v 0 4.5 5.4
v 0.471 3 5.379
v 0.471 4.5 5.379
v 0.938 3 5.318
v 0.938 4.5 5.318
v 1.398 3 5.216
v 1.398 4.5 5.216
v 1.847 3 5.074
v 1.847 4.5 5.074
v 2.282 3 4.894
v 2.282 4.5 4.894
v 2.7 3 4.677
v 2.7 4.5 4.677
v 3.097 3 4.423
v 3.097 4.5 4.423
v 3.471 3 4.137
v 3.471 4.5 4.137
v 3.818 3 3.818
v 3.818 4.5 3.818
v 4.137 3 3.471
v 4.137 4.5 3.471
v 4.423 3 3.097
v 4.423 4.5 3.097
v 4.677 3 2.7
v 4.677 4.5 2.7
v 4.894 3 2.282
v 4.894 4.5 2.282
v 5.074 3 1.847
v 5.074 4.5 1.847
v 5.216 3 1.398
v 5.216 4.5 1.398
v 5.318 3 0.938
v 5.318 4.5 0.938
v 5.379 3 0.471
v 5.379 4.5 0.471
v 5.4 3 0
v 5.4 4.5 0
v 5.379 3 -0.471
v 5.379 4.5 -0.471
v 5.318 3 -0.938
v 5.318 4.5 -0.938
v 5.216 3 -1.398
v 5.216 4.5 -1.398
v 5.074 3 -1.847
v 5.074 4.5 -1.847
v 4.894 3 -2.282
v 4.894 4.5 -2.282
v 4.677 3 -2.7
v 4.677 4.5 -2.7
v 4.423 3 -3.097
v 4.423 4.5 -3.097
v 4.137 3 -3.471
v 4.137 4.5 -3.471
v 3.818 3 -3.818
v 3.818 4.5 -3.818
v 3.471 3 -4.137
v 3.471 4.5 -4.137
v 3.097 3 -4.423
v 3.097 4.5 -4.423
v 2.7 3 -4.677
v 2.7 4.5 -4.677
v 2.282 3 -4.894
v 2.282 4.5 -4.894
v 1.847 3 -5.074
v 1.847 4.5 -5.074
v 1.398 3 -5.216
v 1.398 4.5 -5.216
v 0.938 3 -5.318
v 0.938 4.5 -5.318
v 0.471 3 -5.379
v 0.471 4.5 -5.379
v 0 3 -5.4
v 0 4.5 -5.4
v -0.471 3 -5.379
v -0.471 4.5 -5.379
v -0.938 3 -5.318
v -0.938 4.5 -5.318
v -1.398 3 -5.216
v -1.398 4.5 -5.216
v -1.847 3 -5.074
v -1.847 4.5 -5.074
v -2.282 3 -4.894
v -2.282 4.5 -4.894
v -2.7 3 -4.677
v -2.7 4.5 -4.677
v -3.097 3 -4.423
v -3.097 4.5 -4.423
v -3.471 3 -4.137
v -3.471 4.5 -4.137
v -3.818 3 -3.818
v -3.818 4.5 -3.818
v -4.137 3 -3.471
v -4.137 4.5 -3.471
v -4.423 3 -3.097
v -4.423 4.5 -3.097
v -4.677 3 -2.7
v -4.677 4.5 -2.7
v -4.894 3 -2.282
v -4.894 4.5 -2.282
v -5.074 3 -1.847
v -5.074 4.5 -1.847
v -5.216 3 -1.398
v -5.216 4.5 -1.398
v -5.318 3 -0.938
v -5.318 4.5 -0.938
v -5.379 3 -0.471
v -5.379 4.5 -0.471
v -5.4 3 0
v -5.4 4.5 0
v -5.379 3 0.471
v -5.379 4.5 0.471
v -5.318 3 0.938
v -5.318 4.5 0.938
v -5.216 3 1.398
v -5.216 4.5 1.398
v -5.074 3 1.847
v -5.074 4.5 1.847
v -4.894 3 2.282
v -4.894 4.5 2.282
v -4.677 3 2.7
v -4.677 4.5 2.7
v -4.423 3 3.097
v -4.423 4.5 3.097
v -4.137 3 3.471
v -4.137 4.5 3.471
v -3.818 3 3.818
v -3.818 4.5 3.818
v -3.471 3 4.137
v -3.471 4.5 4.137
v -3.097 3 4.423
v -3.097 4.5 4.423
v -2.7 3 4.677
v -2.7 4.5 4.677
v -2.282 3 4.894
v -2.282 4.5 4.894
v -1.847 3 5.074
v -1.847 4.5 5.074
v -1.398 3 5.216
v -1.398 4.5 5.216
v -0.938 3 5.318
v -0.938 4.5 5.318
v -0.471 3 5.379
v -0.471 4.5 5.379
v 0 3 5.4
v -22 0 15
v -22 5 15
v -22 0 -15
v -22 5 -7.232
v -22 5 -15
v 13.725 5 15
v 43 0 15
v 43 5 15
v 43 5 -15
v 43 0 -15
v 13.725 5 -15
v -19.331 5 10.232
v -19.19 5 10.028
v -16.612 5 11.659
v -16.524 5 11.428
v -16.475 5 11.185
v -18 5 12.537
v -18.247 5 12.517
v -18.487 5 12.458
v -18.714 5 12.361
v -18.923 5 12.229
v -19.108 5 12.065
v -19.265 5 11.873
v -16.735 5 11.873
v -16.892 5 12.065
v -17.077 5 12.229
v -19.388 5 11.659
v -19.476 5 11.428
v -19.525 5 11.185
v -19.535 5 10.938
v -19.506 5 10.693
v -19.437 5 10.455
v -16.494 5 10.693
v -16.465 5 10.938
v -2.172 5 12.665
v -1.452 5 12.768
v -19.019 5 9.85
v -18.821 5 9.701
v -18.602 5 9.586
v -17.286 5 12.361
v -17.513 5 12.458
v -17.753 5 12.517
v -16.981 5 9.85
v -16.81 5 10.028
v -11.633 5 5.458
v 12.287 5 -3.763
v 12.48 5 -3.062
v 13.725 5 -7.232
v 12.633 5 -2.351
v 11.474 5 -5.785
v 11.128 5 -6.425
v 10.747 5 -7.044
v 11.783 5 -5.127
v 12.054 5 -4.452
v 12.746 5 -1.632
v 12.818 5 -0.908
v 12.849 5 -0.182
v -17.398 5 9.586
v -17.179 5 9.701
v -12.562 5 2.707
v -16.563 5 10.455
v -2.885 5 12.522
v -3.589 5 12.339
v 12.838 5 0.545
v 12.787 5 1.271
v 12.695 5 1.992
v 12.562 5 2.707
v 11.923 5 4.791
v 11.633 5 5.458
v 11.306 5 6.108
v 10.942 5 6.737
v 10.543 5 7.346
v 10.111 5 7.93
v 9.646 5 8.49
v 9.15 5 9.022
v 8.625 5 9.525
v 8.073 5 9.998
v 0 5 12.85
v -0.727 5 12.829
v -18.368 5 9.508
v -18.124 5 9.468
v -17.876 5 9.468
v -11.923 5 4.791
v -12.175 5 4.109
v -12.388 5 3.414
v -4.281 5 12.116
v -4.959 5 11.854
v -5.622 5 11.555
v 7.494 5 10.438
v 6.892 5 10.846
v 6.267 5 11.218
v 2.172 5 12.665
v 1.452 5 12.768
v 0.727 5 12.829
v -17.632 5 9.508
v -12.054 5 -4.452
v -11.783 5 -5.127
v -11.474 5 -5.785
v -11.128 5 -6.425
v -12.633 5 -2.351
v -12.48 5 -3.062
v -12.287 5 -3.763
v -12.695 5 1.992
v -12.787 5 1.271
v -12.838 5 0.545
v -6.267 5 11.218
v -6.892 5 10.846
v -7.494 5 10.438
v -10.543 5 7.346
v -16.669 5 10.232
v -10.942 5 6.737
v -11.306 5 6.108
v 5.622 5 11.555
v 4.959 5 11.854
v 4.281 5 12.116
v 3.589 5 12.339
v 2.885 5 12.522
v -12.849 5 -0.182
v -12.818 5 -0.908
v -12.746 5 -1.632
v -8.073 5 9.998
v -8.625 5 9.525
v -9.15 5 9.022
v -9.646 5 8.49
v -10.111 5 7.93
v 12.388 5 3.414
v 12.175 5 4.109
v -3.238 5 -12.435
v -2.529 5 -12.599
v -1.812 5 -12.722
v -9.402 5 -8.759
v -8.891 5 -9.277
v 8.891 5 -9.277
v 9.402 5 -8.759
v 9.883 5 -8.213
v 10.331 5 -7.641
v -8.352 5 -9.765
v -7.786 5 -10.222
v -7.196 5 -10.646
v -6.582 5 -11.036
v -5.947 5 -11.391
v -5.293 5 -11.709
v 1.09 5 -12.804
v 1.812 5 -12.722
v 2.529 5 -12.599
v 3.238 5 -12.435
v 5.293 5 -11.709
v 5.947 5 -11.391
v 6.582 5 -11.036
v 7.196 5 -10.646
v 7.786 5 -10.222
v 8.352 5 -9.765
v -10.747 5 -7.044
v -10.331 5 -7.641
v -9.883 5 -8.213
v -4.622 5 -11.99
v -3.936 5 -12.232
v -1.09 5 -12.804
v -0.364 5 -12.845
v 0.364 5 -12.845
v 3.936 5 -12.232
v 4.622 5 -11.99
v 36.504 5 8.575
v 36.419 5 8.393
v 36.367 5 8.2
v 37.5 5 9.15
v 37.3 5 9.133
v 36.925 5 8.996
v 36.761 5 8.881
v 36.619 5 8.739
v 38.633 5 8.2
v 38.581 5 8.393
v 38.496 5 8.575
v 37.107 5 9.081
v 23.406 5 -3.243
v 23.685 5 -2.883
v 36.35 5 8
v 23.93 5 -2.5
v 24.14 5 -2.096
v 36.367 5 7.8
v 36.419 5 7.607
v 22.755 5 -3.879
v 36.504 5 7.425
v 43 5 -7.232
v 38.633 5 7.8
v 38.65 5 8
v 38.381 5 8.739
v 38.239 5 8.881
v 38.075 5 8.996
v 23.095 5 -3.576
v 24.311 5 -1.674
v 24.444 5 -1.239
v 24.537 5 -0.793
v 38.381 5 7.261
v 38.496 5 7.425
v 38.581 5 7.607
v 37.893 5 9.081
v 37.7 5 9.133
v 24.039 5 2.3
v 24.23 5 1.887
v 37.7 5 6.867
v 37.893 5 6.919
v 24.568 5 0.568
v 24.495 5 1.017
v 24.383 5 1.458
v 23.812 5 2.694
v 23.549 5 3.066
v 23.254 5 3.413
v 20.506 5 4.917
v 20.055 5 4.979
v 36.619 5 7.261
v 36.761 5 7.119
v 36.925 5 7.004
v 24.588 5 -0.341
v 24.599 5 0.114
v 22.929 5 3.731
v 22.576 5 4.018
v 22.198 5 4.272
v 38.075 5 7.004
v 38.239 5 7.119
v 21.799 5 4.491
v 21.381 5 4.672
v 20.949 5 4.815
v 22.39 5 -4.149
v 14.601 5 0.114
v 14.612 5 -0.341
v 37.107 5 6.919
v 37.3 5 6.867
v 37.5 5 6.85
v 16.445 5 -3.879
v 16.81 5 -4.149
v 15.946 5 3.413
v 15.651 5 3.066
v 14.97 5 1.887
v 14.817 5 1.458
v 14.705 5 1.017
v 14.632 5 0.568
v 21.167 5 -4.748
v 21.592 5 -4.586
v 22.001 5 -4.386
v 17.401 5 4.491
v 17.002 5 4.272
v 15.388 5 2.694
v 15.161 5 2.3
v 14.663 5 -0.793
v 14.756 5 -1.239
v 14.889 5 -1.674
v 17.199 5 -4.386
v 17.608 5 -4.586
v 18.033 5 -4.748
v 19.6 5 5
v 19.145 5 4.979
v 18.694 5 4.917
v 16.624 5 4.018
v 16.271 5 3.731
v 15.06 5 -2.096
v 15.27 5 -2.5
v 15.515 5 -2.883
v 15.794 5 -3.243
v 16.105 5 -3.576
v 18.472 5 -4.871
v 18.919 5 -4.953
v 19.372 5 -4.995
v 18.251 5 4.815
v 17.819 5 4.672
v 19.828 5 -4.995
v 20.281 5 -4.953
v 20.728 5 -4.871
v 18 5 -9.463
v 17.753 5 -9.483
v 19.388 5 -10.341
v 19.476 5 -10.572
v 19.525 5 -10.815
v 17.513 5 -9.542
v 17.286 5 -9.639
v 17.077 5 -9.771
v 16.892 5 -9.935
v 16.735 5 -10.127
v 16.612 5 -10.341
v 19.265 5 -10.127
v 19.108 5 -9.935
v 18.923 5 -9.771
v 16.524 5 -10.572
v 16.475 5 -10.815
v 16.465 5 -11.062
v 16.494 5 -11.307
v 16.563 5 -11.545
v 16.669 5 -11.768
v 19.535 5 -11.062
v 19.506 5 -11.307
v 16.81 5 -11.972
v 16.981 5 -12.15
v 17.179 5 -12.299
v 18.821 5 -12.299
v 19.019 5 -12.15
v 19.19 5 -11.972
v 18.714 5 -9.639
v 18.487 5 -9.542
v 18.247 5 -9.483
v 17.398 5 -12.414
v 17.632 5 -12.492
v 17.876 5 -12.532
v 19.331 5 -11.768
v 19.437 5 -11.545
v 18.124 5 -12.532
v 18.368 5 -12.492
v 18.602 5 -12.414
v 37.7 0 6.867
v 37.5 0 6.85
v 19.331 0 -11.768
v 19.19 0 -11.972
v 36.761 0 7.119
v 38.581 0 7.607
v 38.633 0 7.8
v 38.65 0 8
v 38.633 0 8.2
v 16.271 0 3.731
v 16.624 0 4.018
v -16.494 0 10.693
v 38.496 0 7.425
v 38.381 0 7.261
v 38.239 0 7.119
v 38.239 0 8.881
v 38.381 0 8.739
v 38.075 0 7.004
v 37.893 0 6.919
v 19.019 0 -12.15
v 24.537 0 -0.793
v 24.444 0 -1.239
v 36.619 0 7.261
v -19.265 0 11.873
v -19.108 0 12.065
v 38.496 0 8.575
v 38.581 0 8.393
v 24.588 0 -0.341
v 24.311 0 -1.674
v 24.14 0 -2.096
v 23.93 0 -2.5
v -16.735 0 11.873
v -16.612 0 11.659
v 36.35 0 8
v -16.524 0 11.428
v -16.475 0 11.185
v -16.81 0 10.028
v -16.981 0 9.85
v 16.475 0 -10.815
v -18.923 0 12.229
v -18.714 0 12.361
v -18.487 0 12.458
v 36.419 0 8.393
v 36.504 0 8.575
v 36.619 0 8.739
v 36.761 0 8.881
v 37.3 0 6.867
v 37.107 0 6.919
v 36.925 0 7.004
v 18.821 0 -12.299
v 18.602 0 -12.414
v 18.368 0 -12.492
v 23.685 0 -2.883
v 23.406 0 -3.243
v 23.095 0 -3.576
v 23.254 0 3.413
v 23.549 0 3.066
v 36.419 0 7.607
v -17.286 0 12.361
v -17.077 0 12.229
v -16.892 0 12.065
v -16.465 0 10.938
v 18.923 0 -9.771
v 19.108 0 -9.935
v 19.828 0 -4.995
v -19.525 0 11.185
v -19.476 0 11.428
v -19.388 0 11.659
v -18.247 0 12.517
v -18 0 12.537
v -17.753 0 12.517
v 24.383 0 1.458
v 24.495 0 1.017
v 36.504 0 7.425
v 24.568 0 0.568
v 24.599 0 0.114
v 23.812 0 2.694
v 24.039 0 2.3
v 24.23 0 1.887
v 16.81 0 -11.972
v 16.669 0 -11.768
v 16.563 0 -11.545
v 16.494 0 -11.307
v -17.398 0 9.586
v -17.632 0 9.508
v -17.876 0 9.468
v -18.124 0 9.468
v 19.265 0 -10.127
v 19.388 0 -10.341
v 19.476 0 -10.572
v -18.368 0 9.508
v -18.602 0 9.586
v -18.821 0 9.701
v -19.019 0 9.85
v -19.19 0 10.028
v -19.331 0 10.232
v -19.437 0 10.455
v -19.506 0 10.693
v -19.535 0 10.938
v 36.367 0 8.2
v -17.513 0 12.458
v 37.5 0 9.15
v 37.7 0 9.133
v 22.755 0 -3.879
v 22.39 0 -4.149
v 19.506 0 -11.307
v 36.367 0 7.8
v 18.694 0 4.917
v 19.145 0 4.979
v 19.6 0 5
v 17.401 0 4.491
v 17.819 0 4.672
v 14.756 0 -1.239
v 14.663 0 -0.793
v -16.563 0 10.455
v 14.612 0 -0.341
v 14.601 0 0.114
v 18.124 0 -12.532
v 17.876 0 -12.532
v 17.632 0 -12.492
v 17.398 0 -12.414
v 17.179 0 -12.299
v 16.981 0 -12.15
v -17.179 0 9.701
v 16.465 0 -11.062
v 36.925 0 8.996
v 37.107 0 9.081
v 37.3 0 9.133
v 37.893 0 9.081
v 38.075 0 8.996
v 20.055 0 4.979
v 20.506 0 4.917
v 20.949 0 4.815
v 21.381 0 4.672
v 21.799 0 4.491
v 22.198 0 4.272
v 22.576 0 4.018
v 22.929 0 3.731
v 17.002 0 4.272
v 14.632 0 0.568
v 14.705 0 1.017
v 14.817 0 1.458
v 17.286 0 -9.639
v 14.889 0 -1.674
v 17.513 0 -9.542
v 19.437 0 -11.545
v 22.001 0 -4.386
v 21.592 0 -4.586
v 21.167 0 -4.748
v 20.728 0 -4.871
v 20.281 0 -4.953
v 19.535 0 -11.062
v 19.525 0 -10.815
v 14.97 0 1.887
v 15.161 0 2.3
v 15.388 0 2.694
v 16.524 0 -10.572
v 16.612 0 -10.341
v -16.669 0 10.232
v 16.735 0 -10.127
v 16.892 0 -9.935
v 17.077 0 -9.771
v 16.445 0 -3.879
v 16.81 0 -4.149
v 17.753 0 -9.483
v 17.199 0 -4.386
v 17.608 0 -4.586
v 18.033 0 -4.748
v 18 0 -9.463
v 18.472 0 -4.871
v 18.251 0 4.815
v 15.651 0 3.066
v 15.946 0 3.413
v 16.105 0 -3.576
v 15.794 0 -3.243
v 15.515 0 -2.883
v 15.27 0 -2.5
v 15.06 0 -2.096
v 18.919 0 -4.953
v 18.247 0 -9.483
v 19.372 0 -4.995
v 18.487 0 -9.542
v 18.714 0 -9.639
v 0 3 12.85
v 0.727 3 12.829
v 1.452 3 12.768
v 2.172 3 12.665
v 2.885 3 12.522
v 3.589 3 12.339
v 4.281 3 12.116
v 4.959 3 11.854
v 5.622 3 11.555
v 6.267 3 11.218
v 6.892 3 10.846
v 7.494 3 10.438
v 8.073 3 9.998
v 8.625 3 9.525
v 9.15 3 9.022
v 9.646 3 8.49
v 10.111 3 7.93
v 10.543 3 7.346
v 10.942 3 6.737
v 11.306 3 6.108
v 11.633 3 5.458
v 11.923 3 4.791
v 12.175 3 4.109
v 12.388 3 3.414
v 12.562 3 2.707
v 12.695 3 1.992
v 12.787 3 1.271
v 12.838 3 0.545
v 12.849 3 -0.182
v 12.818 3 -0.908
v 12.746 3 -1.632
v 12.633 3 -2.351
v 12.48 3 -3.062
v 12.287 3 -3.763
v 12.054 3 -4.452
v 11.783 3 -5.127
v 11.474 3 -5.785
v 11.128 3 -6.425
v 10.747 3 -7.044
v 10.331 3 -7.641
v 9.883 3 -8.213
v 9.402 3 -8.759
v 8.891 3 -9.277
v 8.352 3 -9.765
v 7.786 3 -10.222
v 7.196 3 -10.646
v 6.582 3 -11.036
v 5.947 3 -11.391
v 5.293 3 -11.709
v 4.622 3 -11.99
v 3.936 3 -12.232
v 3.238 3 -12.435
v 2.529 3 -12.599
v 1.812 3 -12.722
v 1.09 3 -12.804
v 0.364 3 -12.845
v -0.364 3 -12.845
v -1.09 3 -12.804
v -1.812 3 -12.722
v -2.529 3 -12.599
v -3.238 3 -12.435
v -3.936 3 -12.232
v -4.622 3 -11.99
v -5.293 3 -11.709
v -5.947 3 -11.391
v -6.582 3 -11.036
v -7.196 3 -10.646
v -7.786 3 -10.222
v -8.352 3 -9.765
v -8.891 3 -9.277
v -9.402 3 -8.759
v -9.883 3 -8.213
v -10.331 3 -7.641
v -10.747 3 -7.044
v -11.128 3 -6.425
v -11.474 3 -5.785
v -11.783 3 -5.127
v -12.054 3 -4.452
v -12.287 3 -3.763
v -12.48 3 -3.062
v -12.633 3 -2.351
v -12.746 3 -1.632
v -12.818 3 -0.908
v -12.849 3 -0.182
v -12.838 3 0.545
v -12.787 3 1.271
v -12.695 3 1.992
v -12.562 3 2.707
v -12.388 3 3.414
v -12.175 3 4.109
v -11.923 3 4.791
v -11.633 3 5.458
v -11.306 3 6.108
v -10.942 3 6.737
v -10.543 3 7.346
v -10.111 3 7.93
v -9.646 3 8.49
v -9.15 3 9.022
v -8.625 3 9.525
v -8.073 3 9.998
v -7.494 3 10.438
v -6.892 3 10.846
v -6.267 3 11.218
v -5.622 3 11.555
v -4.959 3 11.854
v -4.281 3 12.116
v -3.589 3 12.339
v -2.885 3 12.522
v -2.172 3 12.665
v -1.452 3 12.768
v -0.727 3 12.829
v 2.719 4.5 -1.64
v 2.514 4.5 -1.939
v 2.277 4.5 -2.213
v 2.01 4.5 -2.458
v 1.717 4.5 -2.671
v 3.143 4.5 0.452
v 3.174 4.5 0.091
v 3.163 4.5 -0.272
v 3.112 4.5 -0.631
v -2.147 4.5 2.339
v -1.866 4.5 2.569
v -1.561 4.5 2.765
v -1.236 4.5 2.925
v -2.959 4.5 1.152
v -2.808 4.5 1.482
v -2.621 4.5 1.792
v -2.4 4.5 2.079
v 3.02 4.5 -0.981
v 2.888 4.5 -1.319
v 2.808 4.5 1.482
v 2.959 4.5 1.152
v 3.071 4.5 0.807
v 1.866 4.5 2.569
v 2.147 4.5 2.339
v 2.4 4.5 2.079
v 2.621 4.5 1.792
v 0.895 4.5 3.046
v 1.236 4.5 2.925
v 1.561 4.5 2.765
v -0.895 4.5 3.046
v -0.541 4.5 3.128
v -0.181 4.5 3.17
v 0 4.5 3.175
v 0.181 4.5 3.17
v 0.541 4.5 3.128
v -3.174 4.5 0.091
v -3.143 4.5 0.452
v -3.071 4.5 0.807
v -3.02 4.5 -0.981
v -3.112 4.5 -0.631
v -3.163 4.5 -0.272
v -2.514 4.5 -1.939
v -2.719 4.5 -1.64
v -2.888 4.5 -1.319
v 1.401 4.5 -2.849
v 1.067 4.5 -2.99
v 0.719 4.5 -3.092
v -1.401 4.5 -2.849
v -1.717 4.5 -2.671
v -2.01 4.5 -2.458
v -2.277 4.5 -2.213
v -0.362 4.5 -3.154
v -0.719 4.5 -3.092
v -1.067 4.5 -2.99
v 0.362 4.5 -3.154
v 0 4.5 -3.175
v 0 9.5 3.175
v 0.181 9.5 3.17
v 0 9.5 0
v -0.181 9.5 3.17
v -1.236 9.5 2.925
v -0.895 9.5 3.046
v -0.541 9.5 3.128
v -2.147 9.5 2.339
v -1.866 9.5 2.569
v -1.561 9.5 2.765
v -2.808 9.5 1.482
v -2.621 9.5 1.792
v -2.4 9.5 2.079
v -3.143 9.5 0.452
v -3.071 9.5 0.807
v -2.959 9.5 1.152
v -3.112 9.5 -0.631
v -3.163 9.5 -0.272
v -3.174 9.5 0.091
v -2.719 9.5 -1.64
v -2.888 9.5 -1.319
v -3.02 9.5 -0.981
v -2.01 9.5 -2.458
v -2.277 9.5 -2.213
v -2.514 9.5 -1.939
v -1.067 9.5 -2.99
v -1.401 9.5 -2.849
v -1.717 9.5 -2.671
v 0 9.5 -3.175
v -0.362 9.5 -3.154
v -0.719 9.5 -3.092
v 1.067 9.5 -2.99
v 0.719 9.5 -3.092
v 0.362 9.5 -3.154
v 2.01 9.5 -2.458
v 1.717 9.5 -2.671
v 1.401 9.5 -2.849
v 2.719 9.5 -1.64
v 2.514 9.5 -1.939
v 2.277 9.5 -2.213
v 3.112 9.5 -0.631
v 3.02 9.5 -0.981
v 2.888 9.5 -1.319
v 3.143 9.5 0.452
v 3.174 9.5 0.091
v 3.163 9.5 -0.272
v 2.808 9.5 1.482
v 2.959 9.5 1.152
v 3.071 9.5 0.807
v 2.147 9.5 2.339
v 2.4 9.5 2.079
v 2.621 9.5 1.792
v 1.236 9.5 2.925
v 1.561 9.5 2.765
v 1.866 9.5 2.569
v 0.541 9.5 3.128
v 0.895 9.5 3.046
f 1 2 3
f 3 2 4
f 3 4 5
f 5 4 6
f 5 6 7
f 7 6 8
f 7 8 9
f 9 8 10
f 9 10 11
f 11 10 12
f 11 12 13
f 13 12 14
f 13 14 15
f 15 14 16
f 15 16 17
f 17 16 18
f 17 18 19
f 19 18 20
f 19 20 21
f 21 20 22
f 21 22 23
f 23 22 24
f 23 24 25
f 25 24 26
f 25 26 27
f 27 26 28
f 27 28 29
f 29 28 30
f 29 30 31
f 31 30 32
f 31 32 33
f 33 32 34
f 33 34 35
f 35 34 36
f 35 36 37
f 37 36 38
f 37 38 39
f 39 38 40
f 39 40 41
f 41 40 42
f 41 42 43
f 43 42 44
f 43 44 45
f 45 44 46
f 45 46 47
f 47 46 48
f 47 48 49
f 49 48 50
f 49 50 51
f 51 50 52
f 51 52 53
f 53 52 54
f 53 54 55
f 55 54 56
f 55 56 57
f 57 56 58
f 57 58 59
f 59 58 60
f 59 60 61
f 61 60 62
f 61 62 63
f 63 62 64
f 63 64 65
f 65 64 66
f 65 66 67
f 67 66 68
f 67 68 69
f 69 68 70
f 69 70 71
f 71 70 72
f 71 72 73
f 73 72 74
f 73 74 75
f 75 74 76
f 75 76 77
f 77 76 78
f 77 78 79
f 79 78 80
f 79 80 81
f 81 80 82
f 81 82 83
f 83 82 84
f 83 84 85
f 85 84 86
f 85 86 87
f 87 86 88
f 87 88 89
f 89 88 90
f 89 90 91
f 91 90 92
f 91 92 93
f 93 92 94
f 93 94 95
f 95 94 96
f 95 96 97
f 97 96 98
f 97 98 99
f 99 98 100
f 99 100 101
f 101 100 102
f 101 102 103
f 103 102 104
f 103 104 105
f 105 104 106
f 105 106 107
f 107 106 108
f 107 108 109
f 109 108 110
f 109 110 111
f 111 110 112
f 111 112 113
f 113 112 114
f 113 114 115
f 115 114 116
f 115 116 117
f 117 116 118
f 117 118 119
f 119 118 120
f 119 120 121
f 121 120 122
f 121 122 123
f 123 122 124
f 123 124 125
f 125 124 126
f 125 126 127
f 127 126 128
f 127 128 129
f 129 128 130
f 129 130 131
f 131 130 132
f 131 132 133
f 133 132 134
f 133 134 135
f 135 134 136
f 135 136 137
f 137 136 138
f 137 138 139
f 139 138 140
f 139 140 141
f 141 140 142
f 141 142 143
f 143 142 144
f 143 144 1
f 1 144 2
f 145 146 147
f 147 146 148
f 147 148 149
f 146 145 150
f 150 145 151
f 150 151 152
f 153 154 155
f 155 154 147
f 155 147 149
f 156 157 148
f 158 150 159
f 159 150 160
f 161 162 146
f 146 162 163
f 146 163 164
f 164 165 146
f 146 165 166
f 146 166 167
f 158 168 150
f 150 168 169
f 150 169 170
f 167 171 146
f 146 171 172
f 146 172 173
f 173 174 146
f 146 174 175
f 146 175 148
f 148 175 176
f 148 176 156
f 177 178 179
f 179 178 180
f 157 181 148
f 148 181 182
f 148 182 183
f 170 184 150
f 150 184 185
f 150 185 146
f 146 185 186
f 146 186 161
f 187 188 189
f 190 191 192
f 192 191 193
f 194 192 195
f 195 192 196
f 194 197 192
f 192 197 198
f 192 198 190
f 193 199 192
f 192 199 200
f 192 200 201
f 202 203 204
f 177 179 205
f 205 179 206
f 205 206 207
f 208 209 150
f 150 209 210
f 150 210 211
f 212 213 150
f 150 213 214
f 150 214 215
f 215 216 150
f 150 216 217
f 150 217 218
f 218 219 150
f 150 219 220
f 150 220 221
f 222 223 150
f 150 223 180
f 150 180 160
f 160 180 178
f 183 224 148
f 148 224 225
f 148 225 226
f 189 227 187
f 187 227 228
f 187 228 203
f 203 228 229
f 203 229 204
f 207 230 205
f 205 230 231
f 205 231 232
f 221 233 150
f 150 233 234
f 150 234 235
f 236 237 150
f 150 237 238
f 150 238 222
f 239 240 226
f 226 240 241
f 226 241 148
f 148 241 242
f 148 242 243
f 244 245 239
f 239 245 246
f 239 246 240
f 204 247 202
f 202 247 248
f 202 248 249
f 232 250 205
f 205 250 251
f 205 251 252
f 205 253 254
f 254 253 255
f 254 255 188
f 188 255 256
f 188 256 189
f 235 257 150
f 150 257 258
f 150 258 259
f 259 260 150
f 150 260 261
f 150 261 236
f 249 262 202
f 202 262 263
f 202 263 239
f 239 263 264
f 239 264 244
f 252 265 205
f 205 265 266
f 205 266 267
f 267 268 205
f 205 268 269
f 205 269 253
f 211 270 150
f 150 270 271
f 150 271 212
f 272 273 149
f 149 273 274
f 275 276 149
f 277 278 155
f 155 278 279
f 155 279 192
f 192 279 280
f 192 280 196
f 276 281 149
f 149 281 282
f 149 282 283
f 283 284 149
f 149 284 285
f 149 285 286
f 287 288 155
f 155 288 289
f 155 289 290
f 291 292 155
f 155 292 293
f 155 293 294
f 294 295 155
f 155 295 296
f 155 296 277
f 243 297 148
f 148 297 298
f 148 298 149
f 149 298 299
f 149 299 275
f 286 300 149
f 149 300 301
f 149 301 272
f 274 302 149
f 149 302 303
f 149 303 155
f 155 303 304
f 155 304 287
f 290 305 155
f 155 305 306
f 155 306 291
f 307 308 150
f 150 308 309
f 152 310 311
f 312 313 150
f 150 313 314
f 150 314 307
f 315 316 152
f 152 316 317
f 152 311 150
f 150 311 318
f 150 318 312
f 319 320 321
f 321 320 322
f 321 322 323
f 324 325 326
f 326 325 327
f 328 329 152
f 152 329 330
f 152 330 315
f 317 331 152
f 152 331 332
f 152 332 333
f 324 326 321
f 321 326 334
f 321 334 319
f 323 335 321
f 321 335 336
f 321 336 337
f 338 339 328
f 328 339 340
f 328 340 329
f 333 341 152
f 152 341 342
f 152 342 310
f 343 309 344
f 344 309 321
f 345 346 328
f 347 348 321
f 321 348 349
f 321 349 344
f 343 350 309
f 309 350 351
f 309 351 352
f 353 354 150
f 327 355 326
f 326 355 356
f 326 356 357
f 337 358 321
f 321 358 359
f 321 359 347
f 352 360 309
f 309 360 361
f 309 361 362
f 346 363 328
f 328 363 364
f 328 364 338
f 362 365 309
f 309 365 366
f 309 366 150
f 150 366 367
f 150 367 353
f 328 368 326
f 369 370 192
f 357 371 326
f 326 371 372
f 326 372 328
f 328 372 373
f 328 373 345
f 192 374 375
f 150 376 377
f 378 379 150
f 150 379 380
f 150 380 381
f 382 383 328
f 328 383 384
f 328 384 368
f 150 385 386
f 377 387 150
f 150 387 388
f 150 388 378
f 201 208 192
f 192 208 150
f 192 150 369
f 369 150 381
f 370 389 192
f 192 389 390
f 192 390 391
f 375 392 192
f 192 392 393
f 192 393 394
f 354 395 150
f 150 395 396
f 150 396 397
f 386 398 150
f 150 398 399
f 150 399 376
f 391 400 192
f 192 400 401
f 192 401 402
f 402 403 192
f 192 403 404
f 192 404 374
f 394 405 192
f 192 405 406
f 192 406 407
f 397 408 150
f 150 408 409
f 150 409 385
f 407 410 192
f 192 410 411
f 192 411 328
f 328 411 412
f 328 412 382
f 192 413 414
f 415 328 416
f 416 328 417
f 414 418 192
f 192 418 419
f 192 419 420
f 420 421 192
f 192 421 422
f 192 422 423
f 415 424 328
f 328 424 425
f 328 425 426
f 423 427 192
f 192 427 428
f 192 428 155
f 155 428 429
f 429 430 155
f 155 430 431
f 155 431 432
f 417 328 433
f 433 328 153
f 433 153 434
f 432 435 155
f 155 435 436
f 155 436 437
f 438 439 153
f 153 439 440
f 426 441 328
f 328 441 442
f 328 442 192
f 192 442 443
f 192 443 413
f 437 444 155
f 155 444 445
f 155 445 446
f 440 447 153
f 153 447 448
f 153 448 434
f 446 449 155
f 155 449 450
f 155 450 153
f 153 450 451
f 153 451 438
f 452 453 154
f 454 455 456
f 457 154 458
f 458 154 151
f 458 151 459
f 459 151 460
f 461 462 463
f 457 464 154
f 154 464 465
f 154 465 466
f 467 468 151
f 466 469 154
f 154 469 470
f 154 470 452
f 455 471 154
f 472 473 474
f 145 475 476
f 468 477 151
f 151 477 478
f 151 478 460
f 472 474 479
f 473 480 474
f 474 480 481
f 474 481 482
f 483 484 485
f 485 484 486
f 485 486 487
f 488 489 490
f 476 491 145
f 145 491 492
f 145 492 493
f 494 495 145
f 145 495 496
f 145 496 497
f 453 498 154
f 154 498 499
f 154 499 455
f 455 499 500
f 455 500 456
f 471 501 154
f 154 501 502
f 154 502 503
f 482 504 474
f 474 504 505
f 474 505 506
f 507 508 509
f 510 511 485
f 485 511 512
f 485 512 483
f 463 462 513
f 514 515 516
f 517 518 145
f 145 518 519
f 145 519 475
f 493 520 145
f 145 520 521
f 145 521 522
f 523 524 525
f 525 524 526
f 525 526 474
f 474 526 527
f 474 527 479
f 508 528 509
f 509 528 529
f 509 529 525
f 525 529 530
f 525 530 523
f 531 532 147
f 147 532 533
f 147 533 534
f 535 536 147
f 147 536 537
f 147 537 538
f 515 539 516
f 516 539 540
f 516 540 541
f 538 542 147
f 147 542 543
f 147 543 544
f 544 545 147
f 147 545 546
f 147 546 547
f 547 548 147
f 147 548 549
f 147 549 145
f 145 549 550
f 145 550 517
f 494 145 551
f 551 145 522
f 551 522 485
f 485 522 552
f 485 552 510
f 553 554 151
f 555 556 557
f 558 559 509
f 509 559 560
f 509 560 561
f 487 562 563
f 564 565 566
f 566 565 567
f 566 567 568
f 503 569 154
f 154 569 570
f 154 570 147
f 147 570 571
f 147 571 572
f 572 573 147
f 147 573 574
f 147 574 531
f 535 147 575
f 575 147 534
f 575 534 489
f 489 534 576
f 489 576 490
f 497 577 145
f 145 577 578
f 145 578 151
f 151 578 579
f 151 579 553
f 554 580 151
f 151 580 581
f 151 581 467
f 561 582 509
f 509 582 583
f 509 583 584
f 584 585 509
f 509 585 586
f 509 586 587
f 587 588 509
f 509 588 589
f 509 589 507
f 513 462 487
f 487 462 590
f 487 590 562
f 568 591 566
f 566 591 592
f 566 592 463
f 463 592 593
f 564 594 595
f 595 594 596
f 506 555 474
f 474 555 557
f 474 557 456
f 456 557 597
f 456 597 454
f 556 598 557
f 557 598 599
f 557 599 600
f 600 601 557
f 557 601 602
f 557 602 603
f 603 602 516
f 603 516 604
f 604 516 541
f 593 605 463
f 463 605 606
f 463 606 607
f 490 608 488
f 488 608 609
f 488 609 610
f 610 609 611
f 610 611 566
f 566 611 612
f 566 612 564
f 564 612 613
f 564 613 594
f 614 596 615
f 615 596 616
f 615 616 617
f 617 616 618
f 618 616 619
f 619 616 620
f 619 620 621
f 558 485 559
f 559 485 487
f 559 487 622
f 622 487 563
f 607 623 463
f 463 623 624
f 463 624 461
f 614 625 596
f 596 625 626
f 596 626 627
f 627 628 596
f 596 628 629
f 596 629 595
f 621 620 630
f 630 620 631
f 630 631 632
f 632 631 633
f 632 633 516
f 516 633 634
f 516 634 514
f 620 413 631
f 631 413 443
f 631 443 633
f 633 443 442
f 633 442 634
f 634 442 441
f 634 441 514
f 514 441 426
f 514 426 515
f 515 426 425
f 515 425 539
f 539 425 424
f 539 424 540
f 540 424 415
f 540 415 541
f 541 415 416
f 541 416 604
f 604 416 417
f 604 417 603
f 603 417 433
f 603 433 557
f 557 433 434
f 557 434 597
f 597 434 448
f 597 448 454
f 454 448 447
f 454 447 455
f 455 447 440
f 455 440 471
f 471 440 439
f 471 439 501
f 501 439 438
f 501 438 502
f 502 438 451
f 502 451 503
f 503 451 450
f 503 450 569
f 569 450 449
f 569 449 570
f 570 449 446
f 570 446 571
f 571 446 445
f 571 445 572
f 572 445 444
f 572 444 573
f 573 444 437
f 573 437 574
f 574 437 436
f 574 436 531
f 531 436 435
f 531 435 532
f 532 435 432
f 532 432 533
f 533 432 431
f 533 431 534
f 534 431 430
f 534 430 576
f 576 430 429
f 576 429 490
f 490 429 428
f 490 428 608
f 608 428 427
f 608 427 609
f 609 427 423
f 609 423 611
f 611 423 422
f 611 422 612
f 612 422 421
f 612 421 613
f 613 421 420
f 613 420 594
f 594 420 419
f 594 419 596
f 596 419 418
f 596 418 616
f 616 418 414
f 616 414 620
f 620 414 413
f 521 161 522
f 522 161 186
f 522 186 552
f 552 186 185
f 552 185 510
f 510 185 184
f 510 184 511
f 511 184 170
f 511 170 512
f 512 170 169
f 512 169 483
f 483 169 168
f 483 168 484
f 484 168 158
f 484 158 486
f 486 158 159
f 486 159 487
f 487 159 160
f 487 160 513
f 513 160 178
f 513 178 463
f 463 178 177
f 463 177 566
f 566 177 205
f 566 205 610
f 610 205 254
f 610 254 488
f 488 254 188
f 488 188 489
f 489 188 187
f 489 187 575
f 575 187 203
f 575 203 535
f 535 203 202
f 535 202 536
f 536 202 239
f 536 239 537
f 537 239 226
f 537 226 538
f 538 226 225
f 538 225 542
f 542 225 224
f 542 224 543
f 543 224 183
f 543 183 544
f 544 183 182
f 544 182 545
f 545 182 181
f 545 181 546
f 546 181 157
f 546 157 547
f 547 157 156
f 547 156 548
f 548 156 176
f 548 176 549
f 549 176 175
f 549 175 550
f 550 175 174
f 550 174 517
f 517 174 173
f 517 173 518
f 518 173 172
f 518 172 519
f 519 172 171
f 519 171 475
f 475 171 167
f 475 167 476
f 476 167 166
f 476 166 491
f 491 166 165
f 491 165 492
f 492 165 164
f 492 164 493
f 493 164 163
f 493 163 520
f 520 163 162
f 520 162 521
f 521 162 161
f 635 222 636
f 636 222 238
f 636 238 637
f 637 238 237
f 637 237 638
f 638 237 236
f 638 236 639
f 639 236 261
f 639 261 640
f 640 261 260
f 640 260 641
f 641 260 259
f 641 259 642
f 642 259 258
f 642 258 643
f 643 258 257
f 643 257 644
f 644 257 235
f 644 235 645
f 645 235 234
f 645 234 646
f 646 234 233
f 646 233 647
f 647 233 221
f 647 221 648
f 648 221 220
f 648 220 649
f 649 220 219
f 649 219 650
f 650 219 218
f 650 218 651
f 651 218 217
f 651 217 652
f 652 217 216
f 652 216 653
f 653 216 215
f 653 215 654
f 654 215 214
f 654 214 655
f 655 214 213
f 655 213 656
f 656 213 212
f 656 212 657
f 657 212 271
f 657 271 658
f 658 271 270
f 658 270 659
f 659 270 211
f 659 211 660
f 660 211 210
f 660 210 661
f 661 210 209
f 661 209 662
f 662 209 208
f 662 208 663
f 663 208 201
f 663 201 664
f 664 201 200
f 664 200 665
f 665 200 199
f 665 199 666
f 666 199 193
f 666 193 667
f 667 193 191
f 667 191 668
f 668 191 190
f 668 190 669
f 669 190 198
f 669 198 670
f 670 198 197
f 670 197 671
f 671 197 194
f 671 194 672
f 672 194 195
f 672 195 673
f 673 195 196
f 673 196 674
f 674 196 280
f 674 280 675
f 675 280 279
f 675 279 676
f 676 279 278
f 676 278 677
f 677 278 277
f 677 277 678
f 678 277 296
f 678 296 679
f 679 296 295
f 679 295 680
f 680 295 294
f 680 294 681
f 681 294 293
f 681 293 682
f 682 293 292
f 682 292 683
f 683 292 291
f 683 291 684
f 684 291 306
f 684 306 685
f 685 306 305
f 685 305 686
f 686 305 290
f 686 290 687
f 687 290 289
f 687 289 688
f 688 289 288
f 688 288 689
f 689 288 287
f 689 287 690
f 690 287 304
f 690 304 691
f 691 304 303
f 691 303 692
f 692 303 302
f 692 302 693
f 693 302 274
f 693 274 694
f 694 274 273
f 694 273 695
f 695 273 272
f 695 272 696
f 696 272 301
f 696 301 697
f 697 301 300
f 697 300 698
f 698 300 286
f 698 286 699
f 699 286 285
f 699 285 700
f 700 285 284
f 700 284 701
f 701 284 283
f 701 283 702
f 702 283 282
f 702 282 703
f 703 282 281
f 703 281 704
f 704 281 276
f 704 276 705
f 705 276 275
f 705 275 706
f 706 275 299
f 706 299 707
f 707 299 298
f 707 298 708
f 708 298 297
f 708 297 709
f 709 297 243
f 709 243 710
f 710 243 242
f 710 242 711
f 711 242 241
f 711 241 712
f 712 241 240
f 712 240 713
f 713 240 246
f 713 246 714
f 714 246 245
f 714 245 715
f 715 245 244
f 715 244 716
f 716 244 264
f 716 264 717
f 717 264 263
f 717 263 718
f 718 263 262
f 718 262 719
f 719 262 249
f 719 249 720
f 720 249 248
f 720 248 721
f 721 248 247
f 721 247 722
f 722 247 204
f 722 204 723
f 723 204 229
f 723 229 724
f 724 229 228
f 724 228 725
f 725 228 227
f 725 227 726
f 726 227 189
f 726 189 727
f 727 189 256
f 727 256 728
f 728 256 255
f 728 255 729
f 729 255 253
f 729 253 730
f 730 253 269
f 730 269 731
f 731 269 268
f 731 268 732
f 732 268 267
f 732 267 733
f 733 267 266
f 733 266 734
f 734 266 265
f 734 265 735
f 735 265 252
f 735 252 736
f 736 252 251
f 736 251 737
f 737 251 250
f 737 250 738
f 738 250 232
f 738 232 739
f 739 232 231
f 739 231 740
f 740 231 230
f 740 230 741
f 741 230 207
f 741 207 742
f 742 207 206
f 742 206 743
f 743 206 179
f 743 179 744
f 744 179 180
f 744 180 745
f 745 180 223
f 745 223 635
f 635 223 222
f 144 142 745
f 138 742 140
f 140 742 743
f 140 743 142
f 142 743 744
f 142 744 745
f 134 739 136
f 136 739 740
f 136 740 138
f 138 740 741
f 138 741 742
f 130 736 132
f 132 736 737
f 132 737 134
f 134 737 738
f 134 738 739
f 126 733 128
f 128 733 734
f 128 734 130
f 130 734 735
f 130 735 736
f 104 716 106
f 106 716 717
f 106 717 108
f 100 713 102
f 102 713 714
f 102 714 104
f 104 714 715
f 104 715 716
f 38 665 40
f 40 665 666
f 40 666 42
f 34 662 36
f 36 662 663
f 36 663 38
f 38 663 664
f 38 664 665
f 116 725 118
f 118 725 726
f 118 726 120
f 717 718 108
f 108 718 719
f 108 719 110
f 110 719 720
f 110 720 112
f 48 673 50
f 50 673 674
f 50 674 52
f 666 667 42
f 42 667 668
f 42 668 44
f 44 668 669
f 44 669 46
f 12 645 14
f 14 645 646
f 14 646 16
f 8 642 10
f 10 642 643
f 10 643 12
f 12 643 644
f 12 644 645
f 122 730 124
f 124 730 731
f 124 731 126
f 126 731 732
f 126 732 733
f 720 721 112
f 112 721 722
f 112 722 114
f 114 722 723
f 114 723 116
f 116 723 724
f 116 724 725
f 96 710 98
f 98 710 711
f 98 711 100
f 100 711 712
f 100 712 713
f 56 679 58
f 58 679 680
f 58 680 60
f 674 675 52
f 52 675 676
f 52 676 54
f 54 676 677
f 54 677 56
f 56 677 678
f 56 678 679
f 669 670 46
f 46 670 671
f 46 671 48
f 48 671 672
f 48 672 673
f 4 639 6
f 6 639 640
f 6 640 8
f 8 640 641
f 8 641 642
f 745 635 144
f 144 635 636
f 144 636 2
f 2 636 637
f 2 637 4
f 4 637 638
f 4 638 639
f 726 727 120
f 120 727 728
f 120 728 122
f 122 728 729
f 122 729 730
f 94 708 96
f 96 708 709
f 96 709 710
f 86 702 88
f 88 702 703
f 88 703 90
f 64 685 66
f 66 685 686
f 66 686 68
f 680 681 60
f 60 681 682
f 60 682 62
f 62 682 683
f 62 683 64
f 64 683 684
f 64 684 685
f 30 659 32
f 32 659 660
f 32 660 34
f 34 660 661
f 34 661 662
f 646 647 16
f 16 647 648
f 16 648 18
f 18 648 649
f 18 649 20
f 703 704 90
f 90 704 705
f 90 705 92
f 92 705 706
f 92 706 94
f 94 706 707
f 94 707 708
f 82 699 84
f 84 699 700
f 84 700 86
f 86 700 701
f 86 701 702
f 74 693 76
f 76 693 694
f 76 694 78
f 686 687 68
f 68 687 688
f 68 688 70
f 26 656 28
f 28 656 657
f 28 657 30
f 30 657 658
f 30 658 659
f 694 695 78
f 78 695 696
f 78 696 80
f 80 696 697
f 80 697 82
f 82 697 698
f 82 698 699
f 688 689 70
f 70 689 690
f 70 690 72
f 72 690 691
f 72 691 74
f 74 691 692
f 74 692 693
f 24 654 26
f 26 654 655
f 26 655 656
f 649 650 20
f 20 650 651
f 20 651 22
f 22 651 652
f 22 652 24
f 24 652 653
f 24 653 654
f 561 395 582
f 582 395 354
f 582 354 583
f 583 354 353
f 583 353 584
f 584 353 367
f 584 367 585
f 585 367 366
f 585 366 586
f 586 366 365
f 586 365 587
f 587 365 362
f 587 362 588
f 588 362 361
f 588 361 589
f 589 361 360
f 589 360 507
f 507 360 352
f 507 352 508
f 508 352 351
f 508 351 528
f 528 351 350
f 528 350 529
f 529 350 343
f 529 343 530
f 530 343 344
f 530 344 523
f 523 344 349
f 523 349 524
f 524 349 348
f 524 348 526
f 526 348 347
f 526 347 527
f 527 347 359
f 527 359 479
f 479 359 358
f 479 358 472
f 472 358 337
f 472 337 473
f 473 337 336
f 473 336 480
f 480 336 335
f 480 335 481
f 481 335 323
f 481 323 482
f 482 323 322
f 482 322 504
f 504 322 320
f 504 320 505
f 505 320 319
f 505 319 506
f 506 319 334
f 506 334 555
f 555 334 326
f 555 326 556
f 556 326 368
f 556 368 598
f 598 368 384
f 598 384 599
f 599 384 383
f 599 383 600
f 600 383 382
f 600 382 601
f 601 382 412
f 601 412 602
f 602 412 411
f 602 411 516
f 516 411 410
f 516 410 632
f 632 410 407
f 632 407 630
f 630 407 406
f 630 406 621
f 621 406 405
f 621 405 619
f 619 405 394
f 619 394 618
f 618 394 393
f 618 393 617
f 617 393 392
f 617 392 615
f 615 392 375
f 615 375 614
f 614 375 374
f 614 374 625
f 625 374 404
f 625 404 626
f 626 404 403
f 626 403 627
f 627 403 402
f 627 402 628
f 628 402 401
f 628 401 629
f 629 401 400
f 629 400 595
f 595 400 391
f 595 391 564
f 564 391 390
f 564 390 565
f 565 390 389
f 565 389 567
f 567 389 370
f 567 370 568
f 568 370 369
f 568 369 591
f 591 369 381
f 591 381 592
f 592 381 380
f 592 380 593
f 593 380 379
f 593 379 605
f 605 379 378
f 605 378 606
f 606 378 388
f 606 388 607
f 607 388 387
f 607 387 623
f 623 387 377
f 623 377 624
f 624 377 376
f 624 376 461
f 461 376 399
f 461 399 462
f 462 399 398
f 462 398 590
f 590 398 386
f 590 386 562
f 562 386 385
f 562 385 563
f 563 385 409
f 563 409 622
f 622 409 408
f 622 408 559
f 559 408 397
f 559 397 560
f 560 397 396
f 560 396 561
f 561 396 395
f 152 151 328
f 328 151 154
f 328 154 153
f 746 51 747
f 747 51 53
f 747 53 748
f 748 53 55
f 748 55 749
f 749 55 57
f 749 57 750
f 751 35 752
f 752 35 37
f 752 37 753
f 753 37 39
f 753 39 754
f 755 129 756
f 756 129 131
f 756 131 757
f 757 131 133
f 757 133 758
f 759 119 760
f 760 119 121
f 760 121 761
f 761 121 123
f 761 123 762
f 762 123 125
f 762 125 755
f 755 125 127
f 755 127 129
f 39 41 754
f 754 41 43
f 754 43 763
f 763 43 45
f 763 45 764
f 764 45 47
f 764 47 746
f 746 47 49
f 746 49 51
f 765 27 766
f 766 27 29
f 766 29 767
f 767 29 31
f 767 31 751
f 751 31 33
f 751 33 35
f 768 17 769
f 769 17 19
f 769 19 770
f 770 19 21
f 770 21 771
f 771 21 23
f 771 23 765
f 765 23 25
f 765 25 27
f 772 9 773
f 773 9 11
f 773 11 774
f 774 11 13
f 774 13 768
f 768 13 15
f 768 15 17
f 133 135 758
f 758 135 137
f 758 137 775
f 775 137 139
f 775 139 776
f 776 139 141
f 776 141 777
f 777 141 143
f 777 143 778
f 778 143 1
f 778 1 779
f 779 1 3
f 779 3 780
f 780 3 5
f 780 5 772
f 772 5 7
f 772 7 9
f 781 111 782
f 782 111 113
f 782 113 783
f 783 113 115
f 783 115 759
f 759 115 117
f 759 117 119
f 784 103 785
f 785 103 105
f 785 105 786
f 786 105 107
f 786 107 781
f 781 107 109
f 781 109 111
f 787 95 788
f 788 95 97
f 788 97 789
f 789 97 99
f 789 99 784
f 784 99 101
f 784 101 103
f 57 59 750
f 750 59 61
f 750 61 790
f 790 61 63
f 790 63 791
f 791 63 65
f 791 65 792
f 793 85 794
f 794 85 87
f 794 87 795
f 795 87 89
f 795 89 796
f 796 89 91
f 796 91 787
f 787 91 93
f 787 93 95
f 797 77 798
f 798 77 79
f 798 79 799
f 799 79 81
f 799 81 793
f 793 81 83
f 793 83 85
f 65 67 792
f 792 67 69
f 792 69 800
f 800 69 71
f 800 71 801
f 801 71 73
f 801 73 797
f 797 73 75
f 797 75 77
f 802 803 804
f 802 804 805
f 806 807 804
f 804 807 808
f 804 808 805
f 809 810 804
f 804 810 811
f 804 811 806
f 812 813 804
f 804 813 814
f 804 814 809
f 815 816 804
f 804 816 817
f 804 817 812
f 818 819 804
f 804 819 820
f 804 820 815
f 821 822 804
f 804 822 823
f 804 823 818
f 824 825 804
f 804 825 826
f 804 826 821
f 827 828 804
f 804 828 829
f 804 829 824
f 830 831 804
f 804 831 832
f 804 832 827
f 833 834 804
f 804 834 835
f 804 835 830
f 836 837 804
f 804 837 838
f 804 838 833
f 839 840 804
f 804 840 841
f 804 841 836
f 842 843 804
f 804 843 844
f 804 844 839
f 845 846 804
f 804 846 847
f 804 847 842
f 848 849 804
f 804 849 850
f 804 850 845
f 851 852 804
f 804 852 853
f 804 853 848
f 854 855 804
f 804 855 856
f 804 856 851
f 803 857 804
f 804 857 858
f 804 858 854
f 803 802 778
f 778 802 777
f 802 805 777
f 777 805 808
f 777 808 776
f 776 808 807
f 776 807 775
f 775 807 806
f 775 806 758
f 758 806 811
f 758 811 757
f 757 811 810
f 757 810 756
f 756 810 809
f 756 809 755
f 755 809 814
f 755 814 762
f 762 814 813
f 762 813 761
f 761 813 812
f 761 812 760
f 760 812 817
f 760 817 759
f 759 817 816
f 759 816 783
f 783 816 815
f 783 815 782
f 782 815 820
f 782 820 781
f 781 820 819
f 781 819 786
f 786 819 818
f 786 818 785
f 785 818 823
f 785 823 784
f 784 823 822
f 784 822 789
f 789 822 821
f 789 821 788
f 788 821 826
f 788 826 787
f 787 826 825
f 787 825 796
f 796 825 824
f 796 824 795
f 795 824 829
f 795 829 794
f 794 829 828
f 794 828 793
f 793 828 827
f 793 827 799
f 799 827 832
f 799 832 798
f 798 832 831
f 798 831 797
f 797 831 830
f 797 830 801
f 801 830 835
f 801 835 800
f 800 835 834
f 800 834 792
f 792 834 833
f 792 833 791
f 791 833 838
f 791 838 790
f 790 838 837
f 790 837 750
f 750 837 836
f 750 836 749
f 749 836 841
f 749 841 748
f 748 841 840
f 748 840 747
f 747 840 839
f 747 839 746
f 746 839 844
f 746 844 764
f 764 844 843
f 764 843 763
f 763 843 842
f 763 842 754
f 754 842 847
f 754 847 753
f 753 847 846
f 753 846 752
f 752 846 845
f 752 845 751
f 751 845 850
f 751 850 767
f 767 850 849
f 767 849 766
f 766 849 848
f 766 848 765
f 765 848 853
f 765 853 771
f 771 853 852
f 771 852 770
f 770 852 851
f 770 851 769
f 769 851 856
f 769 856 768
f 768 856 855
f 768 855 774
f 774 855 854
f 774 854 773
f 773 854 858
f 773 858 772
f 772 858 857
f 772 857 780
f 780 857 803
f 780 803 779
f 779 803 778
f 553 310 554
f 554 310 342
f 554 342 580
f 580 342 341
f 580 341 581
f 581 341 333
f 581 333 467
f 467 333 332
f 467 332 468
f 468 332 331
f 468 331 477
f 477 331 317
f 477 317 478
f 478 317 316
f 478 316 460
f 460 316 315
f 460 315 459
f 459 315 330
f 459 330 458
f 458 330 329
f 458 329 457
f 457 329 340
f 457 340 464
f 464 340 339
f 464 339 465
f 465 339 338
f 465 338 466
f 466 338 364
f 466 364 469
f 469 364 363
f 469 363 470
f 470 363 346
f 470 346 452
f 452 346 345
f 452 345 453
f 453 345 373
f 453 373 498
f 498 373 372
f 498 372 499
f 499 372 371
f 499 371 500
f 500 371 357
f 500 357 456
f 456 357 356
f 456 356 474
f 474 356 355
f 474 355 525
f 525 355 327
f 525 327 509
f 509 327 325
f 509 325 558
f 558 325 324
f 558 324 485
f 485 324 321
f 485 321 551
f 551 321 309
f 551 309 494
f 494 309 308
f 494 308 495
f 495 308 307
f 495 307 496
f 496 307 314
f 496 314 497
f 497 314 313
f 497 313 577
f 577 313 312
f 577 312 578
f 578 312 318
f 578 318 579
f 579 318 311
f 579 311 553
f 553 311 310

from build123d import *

# Parameters (mm, degrees)
SKETCH1_W           = 57
SKETCH1_H           = 30
BOSS_EXTRUDE1_DEPTH = 5
SKETCH2_R           = 3.175
BOSS_EXTRUDE2_DEPTH = 4.5
SKETCH3_R           = 1.5367
CUT_EXTRUDE1_DEPTH  = 5
SKETCH4_R           = 12.85
SKETCH4_R_2         = 5.4
CUT_EXTRUDE2_DEPTH  = 2
SKETCH5_R           = 5
CUT_EXTRUDE3_DEPTH  = 10
SKETCH6_W           = 8
SKETCH6_H           = 30
BOSS_EXTRUDE3_DEPTH = 5
SKETCH7_R           = 5.4
SKETCH7_R_2         = 3.175
CUT_EXTRUDE4_DEPTH  = 0.5
SKETCH8_R           = 1.15
CUT_EXTRUDE5_DEPTH  = 15


with BuildPart() as part:
    # Sketch1 → Boss-Extrude1 (new body)
    with BuildSketch(Plane(origin=(0, 0, 0), x_dir=(1, 0, 0), z_dir=(0, 1, 0))):
        with Locations((6.5, 0)):
            Rectangle(SKETCH1_W, SKETCH1_H)
    extrude(amount=BOSS_EXTRUDE1_DEPTH)

    # Sketch2 → Boss-Extrude2 (add)
    with BuildSketch(Plane(origin=(0, 5, 0), x_dir=(1, 0, 0), z_dir=(0, 1, 0))):
        with Locations(Location((0, 0, 0), (0, 0, 270))):
            Circle(SKETCH2_R)
    extrude(amount=BOSS_EXTRUDE2_DEPTH)

    # Sketch3 → Cut-Extrude1 (cut)
    with BuildSketch(Plane(origin=(0, 5, 0), x_dir=(1, 0, 0), z_dir=(0, 1, 0))):
        with Locations(Location((-18, -11, 0), (0, 0, 270))):
            Circle(SKETCH3_R)
        with Locations(Location((18, 11, 0), (0, 0, 270))):
            Circle(SKETCH3_R)
    extrude(amount=-CUT_EXTRUDE1_DEPTH, mode=Mode.SUBTRACT)

    # Sketch4 → Cut-Extrude2 (cut)
    with BuildSketch(Plane(origin=(0, 5, 0), x_dir=(1, 0, 0), z_dir=(0, 1, 0))):
        with Locations(Location((0, 0, 0), (0, 0, 270))):
            Circle(SKETCH4_R)
        with Locations(Location((0, 0, 0), (0, 0, 270))):
            Circle(SKETCH4_R_2, mode=Mode.SUBTRACT)
    extrude(amount=-CUT_EXTRUDE2_DEPTH, mode=Mode.SUBTRACT)

    # Sketch5 → Cut-Extrude3 (cut)
    with BuildSketch(Plane(origin=(0, 5, 0), x_dir=(1, 0, 0), z_dir=(0, 1, 0))):
        with Locations(Location((19.6, 0, 0), (0, 0, 270))):
            Circle(SKETCH5_R)
    extrude(amount=-CUT_EXTRUDE3_DEPTH, mode=Mode.SUBTRACT)

    # Sketch6 → Boss-Extrude3 (add)
    with BuildSketch(Plane(origin=(0, 5, 0), x_dir=(1, 0, 0), z_dir=(0, 1, 0))):
        with Locations((39, 0)):
            Rectangle(SKETCH6_W, SKETCH6_H)
    extrude(amount=-BOSS_EXTRUDE3_DEPTH)

    # Sketch7 → Cut-Extrude4 (cut)
    with BuildSketch(Plane(origin=(0, 5, 0), x_dir=(1, 0, 0), z_dir=(0, 1, 0))):
        with Locations(Location((0, 0, 0), (0, 0, 270))):
            Circle(SKETCH7_R)
        with Locations(Location((0, 0, 0), (0, 0, 270))):
            Circle(SKETCH7_R_2, mode=Mode.SUBTRACT)
    extrude(amount=-CUT_EXTRUDE4_DEPTH, mode=Mode.SUBTRACT)

    # Sketch8 → Cut-Extrude5 (cut)
    with BuildSketch(Plane(origin=(0, 5, 0), x_dir=(1, 0, 0), z_dir=(0, 1, 0))):
        with Locations(Location((37.5, -8, 0), (0, 0, 270))):
            Circle(SKETCH8_R)
    extrude(amount=-CUT_EXTRUDE5_DEPTH, mode=Mode.SUBTRACT)


solid = part.part
